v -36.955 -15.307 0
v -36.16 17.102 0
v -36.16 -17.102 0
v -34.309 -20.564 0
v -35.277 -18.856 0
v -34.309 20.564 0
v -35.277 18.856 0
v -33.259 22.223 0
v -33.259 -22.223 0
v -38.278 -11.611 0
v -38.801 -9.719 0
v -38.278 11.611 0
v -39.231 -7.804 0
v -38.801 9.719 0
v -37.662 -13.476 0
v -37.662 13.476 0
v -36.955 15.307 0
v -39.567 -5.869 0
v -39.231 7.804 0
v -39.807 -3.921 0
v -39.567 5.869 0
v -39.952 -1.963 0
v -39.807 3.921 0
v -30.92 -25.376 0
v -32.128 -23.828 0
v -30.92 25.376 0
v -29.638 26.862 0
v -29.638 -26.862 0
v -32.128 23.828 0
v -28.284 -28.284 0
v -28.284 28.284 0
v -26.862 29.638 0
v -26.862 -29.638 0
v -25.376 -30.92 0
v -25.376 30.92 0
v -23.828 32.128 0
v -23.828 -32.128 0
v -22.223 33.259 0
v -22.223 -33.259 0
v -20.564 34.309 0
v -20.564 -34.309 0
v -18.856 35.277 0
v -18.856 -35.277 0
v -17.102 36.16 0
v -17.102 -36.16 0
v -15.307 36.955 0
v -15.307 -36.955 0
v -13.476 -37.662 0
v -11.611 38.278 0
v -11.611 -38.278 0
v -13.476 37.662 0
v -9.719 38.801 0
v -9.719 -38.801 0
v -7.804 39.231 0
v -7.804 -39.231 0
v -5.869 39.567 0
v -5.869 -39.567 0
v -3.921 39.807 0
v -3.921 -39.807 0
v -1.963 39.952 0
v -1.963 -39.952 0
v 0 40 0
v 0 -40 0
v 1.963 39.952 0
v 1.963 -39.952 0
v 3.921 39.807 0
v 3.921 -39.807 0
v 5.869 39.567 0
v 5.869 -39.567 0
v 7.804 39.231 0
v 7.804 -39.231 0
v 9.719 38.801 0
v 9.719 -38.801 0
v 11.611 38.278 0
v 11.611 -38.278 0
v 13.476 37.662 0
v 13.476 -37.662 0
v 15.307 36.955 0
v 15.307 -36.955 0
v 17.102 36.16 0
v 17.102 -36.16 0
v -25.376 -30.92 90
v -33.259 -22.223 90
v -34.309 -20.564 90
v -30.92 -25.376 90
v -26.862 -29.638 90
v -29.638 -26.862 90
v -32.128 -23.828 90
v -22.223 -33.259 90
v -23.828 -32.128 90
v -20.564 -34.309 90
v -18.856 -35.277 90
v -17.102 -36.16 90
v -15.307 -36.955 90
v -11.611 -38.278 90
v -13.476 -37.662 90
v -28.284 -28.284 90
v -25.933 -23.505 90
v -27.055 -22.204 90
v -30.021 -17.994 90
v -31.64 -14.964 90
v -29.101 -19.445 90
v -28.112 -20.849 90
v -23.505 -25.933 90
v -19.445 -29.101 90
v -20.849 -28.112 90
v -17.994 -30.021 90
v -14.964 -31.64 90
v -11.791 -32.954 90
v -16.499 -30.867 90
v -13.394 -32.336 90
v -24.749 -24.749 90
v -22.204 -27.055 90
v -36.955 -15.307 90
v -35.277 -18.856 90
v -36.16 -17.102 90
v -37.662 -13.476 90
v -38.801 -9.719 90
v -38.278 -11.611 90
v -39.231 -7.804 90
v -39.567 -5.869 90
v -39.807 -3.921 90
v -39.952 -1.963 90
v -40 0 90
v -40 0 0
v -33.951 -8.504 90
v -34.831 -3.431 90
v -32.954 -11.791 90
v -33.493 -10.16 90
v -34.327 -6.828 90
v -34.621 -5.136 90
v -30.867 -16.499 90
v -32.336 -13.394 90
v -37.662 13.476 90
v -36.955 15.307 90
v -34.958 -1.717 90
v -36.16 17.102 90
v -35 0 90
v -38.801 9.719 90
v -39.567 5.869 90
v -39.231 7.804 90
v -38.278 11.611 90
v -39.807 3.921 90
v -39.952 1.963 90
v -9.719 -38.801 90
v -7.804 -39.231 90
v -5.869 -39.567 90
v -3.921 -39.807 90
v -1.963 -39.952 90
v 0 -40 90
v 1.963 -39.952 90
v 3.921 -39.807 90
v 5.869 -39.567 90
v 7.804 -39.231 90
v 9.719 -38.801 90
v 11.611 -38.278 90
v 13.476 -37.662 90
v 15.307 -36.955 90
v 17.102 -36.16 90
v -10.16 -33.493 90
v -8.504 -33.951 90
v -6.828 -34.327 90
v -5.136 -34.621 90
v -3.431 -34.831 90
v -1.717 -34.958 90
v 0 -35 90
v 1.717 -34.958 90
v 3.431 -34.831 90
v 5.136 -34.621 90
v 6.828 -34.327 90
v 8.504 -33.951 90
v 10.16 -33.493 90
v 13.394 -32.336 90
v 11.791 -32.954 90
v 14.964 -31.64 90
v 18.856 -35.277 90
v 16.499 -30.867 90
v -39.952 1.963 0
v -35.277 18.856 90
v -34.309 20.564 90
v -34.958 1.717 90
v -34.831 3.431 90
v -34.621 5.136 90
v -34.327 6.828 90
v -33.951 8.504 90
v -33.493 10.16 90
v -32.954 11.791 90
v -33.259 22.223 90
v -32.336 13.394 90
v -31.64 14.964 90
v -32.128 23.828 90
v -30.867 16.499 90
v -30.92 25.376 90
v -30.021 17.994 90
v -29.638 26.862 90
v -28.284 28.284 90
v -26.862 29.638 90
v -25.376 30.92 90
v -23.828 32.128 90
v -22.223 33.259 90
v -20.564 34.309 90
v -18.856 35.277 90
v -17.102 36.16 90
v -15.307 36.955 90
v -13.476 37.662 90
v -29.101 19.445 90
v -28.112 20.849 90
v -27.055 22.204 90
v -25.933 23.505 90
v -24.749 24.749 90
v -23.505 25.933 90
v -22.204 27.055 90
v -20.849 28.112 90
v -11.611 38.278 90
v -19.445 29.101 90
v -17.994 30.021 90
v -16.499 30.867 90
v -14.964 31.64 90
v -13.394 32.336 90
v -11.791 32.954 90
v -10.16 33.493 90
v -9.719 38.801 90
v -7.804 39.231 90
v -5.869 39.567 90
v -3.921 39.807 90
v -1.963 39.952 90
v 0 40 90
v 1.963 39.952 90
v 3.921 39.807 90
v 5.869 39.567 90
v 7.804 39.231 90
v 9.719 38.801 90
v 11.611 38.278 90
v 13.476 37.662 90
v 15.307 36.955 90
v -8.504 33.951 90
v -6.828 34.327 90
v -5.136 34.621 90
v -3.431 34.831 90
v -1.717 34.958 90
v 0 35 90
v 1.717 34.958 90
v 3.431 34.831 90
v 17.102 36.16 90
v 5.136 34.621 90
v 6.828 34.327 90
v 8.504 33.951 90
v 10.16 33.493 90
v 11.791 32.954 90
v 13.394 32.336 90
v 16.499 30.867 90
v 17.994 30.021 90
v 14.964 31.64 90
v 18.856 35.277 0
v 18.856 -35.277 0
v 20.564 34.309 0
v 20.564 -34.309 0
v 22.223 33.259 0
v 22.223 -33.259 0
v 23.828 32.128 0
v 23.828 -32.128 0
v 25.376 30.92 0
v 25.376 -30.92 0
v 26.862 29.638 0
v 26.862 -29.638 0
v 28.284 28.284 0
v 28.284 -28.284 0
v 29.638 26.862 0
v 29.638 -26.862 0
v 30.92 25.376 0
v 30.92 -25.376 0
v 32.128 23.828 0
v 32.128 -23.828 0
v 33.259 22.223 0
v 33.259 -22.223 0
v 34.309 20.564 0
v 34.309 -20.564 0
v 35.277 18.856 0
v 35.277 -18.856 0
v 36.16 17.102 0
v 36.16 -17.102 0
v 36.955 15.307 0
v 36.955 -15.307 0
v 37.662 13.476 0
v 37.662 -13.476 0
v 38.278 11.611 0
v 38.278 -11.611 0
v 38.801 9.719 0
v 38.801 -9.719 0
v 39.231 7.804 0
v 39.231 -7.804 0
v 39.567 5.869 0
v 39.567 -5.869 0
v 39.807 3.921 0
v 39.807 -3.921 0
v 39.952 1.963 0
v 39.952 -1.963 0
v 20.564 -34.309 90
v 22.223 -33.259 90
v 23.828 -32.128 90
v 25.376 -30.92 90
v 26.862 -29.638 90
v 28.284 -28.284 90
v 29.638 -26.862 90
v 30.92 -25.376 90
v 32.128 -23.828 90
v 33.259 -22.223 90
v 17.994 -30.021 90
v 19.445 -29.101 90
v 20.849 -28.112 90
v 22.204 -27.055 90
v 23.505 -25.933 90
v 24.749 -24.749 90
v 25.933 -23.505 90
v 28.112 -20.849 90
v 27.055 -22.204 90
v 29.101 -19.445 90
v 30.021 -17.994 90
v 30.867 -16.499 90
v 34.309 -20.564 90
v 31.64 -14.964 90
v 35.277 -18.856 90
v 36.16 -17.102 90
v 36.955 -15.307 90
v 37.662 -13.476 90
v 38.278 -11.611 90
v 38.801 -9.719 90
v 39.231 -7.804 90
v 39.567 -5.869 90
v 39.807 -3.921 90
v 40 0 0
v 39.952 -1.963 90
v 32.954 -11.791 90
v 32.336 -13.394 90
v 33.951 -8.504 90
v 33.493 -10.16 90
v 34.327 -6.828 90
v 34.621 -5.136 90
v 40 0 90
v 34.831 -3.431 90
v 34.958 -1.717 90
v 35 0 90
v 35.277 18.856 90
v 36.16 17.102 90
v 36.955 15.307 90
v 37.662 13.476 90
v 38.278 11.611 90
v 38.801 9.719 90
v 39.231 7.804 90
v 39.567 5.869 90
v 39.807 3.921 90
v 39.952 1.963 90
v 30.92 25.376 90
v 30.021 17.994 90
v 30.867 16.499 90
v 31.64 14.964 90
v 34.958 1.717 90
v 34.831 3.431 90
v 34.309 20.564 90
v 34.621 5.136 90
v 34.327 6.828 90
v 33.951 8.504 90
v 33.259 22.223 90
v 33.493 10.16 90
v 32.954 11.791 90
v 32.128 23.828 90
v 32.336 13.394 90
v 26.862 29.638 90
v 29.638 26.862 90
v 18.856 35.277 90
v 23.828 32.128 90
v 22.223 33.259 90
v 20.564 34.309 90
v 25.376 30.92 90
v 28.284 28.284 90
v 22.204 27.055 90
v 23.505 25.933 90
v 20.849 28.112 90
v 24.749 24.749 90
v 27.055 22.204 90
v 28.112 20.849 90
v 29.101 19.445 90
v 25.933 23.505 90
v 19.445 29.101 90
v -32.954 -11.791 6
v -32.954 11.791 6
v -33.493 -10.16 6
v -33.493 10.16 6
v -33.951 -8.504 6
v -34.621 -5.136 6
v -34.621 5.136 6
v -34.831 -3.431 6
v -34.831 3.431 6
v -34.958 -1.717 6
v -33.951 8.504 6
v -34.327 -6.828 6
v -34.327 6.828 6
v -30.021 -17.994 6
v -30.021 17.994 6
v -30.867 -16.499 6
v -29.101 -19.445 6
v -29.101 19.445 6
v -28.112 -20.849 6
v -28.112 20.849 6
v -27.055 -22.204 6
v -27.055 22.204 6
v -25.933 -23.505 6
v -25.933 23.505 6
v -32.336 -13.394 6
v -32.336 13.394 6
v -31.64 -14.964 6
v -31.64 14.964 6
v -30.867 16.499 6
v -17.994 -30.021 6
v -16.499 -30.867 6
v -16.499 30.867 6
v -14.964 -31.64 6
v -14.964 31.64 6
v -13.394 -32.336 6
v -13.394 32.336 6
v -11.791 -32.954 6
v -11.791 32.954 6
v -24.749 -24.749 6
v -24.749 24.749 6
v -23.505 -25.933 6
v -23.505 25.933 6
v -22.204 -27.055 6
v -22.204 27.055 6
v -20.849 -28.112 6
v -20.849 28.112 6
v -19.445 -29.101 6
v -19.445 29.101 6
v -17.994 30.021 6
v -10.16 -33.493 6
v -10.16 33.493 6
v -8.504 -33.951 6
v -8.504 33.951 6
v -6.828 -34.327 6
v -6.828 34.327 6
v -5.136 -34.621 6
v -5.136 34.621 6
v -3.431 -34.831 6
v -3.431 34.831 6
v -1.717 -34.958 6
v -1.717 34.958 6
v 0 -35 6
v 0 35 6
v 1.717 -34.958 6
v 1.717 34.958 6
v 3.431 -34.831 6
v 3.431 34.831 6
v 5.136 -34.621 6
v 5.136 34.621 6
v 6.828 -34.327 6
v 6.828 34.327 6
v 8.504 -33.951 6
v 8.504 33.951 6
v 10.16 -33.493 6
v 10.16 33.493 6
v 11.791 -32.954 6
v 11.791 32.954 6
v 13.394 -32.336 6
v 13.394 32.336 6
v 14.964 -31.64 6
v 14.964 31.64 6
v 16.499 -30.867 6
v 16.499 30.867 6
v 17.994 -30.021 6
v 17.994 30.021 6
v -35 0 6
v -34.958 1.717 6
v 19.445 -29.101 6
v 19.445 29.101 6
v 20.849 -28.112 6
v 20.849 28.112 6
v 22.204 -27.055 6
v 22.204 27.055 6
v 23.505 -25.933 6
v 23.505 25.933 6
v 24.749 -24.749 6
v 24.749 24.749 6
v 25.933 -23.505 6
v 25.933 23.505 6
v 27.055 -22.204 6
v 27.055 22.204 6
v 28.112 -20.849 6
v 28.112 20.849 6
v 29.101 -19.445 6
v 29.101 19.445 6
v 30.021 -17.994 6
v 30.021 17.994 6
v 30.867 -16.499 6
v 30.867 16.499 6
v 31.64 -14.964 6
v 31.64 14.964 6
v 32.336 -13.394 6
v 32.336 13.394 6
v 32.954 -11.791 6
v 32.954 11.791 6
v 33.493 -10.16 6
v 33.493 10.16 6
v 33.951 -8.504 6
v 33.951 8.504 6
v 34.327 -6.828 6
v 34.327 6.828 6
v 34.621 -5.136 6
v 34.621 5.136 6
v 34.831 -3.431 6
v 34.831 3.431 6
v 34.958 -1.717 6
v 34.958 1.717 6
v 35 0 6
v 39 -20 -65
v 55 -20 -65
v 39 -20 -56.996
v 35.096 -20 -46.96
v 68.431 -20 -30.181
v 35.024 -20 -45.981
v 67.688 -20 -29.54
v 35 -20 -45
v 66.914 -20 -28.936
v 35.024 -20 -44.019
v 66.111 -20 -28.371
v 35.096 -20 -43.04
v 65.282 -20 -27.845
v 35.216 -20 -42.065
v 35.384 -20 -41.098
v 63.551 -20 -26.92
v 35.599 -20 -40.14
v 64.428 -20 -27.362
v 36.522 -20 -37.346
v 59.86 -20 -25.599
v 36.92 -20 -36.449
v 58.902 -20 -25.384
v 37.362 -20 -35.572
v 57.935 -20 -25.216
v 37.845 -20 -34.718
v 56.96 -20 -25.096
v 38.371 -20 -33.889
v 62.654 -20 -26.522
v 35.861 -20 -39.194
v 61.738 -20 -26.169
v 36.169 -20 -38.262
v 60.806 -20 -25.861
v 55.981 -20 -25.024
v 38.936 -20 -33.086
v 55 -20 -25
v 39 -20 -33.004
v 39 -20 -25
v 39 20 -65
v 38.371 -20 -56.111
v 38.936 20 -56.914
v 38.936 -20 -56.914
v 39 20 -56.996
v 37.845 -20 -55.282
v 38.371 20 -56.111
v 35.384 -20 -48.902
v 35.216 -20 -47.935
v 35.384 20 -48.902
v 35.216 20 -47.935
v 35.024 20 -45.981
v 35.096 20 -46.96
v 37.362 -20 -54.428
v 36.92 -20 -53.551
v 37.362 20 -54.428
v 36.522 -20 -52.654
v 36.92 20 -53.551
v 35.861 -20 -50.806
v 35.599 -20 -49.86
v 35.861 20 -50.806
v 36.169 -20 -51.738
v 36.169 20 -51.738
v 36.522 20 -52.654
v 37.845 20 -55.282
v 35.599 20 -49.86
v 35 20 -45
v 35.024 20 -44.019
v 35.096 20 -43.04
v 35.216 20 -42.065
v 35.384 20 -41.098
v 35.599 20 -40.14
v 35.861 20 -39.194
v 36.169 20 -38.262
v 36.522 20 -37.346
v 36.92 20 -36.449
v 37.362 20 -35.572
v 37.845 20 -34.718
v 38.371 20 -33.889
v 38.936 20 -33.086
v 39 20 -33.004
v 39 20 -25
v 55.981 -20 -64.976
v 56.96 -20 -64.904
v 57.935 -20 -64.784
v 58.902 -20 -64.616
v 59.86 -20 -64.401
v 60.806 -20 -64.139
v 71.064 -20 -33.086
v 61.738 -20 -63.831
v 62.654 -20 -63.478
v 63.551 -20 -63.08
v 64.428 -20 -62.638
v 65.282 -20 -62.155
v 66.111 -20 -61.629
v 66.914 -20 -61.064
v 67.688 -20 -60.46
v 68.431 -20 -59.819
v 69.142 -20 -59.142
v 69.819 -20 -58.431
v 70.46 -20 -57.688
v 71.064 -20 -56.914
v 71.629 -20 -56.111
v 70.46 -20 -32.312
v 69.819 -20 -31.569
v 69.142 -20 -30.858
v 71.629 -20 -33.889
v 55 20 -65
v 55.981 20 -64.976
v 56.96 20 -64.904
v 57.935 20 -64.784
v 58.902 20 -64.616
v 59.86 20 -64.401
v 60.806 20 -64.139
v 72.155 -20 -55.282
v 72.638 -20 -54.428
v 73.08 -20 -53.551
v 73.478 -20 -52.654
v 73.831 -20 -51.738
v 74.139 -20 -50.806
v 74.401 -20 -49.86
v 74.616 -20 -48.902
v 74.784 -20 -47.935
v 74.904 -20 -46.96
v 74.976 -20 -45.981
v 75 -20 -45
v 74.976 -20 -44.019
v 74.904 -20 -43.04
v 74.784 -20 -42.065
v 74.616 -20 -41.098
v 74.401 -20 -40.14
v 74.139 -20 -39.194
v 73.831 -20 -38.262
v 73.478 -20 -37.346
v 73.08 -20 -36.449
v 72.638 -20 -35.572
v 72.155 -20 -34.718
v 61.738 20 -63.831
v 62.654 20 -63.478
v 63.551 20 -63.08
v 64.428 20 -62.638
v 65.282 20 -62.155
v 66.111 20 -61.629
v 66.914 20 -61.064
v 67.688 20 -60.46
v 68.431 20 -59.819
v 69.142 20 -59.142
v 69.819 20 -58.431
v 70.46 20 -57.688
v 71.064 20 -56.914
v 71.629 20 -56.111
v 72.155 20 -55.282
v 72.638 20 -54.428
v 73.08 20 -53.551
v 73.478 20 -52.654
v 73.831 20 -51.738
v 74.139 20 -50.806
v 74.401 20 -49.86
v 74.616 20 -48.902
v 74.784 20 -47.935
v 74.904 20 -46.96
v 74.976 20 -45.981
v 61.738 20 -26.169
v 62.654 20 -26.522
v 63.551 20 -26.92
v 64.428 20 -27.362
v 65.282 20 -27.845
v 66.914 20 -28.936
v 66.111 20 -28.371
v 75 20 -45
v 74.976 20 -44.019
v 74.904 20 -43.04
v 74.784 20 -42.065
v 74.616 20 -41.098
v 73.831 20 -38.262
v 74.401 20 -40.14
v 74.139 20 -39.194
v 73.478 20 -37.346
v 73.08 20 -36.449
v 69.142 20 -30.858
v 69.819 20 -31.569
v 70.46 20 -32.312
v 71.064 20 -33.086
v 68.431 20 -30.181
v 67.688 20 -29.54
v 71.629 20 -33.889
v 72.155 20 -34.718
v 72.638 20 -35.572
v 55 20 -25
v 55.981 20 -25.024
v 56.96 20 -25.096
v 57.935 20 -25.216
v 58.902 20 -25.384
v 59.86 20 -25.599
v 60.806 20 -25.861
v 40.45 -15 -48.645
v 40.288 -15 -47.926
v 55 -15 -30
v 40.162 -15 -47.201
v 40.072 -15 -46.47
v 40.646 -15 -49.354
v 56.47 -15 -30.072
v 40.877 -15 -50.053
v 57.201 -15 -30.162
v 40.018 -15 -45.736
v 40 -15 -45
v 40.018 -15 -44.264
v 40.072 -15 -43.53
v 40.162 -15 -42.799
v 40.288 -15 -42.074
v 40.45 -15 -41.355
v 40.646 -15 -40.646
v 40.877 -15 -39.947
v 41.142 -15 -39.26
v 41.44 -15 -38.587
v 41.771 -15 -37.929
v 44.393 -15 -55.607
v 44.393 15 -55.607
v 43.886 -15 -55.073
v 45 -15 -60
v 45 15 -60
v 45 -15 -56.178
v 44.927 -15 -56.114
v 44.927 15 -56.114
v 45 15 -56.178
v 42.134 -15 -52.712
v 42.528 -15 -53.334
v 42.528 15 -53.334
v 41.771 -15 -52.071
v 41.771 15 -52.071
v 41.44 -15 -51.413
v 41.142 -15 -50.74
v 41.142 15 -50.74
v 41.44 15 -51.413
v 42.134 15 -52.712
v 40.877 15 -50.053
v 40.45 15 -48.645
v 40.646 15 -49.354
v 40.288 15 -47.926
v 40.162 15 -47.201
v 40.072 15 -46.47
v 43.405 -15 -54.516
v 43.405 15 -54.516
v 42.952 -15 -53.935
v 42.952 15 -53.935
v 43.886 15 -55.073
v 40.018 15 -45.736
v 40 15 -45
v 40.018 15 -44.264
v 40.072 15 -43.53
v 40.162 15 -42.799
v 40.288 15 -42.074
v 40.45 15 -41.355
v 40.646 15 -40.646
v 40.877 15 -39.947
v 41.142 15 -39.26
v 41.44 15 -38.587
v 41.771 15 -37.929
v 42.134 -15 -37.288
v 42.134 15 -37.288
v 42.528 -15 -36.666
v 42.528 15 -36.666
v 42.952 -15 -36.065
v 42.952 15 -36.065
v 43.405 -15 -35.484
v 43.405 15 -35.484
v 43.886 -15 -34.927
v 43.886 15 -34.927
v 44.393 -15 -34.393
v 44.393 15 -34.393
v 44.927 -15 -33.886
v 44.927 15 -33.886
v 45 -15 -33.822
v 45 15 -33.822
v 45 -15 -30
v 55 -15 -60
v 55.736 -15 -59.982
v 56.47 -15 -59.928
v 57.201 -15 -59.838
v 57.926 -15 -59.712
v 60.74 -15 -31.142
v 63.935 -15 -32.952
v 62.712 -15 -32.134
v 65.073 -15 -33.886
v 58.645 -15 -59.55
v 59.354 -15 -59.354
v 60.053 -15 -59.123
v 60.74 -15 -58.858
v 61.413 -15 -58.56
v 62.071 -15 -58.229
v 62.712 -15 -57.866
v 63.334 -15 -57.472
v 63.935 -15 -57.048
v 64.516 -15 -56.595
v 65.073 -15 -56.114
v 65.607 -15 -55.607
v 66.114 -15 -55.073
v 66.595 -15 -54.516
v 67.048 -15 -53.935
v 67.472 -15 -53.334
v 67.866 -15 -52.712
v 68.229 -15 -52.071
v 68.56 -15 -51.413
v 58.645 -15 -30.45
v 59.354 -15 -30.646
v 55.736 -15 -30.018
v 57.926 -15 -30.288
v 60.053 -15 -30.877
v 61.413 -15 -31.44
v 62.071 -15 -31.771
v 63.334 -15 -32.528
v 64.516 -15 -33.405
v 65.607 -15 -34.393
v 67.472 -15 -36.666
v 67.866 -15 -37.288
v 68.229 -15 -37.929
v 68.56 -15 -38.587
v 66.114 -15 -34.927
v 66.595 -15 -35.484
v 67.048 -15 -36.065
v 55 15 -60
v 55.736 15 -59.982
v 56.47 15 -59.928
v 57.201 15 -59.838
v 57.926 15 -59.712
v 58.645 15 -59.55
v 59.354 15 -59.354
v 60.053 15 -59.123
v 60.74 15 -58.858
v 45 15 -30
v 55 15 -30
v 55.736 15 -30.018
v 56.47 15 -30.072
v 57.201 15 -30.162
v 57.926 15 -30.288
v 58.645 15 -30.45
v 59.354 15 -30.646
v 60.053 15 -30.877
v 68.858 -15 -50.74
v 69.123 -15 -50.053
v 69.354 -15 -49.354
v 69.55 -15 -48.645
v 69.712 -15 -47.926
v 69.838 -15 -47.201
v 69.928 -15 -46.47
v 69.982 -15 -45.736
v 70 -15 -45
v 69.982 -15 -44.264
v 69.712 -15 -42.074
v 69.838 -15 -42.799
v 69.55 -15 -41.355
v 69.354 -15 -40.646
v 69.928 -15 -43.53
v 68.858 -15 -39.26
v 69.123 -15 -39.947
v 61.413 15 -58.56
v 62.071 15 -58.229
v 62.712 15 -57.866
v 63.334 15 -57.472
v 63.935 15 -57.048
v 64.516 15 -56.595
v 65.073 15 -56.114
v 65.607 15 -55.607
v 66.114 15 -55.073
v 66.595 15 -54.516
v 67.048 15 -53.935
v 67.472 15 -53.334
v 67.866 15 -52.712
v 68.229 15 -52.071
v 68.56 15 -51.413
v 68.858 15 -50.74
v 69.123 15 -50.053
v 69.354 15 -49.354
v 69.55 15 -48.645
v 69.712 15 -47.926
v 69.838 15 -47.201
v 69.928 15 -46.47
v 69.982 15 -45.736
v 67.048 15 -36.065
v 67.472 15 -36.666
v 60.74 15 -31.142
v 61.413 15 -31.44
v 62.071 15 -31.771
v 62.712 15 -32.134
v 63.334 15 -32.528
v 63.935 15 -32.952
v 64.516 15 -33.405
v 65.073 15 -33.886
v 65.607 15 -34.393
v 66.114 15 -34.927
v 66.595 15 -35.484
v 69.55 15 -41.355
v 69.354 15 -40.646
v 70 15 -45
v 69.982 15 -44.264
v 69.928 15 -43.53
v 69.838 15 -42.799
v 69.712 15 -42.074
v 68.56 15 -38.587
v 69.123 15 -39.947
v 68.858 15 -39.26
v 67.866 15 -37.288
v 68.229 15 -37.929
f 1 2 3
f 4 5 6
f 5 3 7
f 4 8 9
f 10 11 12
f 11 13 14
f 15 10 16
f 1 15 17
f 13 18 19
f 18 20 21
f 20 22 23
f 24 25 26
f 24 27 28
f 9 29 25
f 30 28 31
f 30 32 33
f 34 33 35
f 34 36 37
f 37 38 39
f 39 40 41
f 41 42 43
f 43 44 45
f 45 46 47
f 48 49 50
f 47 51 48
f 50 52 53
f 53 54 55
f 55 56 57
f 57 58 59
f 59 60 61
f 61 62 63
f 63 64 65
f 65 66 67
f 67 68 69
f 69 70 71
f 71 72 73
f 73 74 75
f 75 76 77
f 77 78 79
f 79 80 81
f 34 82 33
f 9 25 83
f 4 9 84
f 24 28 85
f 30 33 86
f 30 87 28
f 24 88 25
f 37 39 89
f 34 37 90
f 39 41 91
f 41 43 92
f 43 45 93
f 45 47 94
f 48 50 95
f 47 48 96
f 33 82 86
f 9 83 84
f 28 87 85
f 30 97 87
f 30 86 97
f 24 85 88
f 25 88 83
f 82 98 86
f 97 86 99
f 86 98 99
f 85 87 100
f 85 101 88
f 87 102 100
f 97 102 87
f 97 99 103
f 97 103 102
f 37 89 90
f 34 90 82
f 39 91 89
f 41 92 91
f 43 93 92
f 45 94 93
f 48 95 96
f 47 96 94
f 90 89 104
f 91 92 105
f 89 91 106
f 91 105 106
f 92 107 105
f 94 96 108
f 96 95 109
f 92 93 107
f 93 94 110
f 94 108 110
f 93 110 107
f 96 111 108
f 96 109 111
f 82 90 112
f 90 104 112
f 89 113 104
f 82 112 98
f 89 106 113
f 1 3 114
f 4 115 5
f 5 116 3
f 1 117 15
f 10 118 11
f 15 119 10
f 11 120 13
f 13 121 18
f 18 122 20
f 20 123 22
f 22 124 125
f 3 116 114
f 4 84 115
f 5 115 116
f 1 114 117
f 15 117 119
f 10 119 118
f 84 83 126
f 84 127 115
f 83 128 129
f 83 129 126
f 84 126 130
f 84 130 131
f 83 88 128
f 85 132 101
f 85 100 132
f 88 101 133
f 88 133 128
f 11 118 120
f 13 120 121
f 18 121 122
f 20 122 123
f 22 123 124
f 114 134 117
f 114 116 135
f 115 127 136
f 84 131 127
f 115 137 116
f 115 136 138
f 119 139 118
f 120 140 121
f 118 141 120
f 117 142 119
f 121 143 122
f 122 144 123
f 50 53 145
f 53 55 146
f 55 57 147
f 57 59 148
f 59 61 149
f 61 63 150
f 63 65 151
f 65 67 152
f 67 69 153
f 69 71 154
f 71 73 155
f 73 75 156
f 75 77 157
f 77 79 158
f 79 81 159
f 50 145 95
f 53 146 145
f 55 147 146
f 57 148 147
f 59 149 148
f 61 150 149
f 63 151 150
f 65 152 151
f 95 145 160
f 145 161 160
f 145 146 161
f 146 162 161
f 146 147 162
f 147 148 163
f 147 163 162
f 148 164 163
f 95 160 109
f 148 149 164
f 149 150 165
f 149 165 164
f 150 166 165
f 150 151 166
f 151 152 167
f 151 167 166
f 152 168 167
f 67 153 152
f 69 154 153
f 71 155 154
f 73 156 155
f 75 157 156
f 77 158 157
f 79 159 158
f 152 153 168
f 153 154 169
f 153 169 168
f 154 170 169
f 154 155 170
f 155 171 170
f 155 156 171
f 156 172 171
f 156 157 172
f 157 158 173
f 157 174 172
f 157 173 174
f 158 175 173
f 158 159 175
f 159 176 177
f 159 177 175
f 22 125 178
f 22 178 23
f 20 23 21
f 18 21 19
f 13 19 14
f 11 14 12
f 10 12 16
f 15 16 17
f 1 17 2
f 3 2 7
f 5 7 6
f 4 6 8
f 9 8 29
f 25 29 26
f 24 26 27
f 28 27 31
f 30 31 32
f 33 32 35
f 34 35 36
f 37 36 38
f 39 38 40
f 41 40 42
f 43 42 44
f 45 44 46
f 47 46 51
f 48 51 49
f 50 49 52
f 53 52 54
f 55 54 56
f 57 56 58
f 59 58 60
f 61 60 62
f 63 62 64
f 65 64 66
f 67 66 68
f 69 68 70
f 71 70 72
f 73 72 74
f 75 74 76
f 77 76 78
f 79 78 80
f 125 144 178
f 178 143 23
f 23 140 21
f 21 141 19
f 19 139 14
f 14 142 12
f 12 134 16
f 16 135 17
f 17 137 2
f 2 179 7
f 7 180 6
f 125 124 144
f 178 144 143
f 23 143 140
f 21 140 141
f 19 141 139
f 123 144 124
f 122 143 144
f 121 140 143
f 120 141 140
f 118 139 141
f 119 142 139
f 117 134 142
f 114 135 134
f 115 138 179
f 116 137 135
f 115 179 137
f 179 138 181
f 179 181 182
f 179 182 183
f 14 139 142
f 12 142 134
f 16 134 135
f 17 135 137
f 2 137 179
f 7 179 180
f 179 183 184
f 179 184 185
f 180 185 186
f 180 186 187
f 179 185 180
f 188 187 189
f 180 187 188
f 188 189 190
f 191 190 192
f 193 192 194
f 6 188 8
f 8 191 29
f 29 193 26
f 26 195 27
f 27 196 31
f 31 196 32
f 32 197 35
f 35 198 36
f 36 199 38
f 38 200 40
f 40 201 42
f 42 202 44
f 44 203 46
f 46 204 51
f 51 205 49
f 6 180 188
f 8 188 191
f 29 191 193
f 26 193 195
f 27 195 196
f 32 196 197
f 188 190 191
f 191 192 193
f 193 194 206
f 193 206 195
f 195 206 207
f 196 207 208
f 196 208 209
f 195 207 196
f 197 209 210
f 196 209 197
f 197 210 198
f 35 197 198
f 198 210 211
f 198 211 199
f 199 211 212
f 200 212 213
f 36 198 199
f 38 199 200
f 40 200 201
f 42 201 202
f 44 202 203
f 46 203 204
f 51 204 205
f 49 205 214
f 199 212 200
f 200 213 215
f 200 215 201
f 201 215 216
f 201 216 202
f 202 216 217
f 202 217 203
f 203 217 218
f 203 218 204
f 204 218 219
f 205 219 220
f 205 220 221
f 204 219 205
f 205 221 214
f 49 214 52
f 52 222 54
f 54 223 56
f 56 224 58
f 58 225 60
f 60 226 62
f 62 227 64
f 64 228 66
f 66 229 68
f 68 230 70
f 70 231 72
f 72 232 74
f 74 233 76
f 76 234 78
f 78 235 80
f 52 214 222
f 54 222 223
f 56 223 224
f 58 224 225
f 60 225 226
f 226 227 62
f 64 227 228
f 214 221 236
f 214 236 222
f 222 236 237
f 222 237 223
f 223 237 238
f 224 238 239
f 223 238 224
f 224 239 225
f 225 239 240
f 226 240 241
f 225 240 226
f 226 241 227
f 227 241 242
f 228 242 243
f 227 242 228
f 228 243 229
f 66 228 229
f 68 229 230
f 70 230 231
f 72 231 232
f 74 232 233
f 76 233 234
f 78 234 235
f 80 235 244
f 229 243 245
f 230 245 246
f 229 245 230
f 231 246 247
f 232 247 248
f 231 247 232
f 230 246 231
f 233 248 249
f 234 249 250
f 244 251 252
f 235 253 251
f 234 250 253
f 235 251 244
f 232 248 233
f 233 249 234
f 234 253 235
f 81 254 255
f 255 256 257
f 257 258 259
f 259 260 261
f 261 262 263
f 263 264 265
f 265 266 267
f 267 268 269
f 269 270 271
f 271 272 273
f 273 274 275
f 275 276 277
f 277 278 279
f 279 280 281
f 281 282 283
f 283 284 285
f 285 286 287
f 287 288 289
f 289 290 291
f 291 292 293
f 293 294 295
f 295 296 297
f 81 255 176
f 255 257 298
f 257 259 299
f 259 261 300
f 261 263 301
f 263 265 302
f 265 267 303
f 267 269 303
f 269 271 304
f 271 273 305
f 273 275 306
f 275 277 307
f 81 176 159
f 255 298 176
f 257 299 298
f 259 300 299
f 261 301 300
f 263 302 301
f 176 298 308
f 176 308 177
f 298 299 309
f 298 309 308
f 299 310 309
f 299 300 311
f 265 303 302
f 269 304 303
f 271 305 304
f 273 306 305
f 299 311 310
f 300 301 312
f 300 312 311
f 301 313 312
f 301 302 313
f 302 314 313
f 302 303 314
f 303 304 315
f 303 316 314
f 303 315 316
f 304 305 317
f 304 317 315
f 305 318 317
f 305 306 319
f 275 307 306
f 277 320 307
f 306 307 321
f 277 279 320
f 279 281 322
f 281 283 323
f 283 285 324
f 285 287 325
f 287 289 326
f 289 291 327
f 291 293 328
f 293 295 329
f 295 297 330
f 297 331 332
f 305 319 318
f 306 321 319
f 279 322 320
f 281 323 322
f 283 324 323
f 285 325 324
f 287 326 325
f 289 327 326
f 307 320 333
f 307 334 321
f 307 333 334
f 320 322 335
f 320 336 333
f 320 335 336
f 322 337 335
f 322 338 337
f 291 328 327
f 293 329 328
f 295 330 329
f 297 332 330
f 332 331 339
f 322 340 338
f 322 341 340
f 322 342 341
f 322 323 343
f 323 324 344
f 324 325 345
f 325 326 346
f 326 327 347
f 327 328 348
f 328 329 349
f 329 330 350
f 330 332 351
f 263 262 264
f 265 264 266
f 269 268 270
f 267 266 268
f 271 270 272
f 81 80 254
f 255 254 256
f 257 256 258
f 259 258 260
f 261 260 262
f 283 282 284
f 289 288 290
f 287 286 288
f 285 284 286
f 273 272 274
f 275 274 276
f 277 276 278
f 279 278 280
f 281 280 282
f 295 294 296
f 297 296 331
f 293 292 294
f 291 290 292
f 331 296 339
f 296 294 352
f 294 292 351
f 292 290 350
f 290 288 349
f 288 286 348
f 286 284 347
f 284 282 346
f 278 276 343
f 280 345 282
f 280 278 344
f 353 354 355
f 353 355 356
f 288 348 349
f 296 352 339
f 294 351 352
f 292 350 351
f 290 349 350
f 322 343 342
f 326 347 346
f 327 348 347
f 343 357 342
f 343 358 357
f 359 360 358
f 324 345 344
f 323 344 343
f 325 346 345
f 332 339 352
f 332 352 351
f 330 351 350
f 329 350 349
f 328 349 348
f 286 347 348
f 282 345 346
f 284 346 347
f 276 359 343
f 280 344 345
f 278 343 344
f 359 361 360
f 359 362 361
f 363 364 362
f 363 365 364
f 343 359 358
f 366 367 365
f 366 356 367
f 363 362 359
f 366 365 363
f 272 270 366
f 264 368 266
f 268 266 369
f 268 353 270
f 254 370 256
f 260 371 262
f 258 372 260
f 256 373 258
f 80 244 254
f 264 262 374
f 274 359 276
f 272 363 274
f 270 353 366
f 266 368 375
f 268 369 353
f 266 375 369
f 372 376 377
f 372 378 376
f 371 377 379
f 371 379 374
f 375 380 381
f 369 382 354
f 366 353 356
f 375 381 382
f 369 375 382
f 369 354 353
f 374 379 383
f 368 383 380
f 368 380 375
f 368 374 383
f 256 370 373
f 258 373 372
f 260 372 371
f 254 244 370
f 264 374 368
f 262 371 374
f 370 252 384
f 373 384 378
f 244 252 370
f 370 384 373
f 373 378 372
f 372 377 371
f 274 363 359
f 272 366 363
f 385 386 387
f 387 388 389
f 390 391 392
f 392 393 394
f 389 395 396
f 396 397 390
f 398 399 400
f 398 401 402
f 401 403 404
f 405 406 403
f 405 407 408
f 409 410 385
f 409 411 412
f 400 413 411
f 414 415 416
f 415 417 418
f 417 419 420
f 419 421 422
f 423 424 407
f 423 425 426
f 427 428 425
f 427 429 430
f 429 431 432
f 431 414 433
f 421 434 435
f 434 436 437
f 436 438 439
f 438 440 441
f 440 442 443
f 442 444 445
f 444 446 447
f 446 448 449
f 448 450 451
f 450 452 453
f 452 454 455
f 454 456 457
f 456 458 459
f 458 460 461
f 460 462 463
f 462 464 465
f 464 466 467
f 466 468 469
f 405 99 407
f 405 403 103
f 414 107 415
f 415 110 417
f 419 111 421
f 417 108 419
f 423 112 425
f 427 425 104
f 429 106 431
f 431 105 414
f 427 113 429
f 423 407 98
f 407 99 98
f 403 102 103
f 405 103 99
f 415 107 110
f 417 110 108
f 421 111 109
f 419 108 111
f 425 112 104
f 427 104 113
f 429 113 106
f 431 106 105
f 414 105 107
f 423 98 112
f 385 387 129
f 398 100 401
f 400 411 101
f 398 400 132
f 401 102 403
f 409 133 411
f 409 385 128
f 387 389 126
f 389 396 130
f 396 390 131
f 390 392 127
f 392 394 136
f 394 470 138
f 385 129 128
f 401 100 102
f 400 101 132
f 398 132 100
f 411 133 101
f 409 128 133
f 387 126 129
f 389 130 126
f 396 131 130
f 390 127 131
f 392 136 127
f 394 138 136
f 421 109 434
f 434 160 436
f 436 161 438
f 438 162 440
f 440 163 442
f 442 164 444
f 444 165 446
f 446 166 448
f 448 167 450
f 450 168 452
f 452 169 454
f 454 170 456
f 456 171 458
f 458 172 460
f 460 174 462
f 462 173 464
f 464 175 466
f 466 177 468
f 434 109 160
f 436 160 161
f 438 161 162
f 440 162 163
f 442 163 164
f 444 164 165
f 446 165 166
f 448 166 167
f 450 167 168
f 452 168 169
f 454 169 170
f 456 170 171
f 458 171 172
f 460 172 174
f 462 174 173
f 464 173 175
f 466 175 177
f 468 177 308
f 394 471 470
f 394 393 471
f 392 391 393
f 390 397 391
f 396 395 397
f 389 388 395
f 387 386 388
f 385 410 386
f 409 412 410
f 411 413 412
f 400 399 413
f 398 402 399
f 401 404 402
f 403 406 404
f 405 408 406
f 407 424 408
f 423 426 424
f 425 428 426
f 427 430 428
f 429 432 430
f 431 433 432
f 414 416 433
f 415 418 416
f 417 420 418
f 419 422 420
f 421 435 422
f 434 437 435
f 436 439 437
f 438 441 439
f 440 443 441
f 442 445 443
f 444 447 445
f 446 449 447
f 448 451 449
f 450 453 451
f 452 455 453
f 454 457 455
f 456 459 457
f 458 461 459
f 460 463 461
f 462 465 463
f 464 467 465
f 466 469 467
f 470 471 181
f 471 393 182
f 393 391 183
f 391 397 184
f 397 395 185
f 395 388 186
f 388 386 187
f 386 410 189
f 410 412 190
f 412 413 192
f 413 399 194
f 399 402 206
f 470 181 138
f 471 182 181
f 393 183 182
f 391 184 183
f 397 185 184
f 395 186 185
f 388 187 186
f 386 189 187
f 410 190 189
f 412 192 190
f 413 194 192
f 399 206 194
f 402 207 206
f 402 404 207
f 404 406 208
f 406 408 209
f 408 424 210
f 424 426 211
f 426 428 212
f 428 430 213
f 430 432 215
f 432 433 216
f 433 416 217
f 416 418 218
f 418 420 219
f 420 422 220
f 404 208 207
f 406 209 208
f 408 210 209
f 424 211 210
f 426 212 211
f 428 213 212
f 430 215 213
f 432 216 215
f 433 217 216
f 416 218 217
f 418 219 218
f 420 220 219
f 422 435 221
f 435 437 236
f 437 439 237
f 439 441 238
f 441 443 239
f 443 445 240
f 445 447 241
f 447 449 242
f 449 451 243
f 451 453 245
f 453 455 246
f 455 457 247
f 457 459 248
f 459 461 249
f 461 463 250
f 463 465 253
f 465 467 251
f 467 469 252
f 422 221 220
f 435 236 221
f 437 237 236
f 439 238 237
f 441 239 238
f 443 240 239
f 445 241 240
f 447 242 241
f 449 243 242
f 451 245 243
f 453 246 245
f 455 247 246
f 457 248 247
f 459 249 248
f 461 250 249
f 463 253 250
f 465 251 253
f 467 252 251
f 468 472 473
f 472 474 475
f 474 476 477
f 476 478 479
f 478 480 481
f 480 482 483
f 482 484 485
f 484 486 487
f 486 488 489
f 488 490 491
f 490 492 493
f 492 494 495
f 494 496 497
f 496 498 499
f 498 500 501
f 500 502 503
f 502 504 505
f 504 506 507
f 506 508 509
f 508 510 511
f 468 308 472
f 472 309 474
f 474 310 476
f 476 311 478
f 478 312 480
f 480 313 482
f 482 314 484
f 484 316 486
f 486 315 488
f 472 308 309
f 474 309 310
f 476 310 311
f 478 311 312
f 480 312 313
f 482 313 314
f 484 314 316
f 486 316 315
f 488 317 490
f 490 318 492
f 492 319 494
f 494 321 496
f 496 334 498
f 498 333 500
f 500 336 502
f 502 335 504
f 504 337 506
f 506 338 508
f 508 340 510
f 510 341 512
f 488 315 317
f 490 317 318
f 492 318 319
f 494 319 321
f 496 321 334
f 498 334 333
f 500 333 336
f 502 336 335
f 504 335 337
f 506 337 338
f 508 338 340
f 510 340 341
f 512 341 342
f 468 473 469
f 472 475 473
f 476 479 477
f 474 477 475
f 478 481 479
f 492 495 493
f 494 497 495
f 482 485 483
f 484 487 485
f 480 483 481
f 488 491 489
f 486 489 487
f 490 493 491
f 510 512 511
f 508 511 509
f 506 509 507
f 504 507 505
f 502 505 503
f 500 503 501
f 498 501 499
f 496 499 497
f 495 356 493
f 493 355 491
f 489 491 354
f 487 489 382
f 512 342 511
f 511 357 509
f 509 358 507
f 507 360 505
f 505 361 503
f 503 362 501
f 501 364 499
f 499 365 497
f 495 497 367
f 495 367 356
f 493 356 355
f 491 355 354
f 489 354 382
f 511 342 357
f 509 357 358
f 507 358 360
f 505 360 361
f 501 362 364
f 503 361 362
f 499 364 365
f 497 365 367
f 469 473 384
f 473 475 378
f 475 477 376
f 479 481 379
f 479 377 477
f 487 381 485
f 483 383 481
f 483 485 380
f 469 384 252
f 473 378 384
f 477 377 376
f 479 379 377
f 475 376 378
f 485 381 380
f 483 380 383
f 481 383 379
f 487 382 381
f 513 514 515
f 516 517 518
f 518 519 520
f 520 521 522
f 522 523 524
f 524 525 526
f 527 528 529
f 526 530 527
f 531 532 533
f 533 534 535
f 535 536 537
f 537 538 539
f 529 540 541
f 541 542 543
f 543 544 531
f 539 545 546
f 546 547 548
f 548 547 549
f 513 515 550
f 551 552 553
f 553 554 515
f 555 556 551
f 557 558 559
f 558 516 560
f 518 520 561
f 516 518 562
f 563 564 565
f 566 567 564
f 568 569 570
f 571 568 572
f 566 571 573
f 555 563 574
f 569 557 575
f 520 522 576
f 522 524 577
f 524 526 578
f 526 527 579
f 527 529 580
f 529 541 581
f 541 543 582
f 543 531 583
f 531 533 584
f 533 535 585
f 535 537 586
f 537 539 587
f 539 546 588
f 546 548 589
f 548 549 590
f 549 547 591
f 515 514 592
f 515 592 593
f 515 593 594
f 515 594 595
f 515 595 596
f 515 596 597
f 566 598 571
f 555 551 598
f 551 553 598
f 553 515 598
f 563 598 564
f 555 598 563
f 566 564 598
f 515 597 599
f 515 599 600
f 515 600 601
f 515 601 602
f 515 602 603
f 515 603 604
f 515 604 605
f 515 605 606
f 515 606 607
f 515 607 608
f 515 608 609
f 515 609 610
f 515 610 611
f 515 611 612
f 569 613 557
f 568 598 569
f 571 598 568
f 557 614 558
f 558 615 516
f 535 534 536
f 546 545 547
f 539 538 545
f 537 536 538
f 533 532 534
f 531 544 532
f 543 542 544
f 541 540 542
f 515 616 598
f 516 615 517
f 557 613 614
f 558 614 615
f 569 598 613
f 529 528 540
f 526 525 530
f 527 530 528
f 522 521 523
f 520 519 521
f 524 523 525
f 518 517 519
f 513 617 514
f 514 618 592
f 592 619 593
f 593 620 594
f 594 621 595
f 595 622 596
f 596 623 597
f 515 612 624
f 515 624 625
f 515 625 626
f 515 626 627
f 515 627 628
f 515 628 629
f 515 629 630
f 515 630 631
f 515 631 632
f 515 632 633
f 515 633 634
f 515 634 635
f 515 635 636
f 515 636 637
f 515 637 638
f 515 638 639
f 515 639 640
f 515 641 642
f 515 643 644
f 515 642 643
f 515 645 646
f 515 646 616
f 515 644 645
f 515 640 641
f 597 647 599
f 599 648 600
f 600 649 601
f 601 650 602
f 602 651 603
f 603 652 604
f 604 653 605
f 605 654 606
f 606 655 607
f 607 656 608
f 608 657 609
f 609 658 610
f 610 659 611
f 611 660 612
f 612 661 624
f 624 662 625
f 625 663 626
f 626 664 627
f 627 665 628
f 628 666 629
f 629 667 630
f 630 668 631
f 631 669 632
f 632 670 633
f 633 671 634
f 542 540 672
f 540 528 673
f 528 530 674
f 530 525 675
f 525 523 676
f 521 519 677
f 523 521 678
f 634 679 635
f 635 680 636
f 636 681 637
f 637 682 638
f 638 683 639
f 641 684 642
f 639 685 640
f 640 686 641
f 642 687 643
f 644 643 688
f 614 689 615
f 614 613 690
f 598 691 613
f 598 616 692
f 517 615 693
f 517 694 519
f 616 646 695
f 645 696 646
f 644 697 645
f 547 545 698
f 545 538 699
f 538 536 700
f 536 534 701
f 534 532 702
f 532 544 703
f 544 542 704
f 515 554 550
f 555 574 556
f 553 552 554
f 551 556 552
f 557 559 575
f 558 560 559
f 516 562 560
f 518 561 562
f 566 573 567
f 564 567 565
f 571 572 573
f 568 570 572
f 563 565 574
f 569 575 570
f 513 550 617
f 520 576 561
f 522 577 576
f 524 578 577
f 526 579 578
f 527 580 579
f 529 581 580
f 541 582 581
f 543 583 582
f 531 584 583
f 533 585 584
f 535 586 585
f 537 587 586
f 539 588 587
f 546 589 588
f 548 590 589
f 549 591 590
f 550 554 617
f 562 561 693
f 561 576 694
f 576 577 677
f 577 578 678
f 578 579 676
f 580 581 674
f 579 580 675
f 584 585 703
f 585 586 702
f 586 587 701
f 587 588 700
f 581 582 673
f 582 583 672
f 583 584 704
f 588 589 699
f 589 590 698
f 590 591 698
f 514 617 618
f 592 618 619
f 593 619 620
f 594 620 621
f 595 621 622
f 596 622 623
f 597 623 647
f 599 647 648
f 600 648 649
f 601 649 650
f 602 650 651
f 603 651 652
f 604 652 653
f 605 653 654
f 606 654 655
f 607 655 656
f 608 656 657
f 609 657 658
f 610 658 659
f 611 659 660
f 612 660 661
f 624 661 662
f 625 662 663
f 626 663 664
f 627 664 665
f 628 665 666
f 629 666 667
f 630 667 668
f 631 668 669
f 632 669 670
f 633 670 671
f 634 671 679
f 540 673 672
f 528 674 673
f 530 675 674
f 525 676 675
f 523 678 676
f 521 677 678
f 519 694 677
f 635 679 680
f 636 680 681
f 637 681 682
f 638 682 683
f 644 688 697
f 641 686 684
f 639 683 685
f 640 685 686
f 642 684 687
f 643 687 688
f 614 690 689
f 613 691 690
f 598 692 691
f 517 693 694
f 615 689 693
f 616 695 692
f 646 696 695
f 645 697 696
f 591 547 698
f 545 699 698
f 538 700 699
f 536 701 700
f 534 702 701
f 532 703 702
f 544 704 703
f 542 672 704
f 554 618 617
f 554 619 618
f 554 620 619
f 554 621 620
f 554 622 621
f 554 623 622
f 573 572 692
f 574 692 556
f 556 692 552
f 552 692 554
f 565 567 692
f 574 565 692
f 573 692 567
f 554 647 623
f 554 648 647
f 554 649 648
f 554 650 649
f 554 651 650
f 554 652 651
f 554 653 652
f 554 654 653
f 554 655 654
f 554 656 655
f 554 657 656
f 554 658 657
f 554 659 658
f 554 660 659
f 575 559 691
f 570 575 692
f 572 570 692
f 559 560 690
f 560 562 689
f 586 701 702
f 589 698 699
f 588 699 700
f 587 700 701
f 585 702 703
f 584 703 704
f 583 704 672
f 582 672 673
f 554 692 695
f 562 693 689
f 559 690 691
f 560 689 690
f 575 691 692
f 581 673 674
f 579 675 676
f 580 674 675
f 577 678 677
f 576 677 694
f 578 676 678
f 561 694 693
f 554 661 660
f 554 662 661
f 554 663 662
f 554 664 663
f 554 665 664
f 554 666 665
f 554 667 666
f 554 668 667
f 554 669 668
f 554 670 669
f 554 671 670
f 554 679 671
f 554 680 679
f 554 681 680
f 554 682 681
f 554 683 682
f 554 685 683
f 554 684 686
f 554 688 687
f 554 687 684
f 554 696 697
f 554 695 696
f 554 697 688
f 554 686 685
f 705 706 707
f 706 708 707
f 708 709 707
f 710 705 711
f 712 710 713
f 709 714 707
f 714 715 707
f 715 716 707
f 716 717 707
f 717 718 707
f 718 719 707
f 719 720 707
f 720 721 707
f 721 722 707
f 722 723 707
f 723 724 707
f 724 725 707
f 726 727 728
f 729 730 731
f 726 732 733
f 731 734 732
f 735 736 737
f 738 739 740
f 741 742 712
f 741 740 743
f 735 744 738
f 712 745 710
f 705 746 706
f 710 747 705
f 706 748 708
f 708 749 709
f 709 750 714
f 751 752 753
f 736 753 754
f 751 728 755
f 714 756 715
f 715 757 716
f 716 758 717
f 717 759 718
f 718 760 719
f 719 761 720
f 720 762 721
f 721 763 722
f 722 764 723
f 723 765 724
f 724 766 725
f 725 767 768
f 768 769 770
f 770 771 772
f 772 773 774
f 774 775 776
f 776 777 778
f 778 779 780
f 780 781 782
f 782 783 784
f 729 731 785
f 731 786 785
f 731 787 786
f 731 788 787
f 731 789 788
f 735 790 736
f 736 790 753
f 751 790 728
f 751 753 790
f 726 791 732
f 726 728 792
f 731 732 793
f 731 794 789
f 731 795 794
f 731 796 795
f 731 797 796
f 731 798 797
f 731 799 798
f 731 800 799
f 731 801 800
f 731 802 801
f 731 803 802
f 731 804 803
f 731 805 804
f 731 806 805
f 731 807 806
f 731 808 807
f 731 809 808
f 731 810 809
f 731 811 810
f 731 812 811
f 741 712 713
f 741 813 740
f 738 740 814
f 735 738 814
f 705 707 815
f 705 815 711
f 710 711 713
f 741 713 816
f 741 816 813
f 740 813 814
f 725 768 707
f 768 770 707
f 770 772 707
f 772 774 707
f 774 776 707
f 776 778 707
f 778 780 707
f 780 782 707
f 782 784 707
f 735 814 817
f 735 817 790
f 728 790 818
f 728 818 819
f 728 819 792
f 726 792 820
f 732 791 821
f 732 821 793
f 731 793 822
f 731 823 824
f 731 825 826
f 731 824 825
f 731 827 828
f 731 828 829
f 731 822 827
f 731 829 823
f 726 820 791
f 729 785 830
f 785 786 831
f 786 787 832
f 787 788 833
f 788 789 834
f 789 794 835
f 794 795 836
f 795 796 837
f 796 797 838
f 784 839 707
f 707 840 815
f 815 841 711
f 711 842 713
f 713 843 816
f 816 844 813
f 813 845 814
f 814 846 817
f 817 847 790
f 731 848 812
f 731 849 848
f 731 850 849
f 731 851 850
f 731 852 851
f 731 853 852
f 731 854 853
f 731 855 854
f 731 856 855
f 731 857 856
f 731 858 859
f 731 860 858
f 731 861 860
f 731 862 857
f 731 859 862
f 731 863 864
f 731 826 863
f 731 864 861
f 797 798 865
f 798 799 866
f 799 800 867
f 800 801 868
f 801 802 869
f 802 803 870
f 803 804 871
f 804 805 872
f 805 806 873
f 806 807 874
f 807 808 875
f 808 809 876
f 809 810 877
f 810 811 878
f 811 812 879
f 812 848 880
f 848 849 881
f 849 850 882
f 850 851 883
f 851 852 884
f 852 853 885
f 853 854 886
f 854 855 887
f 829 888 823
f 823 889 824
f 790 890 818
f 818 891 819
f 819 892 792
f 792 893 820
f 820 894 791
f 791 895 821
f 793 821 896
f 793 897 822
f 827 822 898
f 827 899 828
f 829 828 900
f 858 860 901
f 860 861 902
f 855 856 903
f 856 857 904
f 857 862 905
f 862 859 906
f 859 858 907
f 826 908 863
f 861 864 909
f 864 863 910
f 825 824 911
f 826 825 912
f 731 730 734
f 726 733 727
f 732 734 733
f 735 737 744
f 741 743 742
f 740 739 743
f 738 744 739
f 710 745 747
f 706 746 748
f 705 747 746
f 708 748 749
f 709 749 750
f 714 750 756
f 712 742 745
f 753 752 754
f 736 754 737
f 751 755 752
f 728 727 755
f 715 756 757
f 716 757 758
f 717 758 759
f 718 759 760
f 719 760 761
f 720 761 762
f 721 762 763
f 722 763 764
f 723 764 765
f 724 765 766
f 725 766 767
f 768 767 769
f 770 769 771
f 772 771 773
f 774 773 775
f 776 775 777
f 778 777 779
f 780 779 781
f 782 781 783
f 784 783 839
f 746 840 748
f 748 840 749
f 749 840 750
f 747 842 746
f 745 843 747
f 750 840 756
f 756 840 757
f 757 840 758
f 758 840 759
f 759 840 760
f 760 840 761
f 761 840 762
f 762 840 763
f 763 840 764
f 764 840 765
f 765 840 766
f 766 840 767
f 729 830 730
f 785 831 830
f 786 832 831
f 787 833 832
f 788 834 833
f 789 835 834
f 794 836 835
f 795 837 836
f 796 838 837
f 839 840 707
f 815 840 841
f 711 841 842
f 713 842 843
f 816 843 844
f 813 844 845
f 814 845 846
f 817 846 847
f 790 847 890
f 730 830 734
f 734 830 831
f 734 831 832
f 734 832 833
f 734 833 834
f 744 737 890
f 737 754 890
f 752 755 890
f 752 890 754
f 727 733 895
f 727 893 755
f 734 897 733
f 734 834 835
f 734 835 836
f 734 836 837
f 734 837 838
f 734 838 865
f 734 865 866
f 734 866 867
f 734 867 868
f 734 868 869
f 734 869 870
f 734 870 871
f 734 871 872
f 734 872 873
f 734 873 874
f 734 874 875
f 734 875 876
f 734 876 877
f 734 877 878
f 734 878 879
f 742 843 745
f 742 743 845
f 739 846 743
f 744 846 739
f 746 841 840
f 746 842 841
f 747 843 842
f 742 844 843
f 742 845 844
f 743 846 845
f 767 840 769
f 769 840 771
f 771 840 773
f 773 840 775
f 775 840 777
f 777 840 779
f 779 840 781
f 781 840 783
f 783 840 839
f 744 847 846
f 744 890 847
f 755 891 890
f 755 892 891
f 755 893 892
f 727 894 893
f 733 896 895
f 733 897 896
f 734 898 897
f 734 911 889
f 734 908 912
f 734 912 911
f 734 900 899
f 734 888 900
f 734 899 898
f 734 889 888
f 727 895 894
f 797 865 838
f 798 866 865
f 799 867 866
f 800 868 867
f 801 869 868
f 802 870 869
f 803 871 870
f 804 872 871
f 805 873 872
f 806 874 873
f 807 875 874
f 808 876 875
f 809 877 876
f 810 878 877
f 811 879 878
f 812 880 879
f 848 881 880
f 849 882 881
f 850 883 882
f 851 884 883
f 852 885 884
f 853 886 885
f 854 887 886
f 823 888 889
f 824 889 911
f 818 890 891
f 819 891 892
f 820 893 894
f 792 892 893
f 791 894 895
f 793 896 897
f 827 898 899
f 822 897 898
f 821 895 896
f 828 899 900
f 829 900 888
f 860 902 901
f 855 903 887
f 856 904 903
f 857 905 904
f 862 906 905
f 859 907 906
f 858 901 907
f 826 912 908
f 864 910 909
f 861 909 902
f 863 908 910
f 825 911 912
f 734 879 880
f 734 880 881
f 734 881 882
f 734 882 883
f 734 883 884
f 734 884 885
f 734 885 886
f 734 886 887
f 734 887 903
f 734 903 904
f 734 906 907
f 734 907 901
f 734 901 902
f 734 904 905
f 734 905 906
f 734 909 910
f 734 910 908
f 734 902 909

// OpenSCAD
$fn = 128;

// Mug dimensions
outer_d = 80;
inner_d = 70;
mug_h   = 90;
bottom_t = 6;

// Handle opening dimensions
handle_open_w = 25;   // radial width of finger opening
handle_open_h = 30;   // vertical height of finger opening

// Handle thickness around opening
handle_wall = 5;

// Derived
outer_r = outer_d / 2;
inner_r = inner_d / 2;

// Handle placement and size
handle_center_z = mug_h / 2;
handle_outer_h = handle_open_h + 2 * handle_wall;
handle_r = handle_outer_h / 2;                  // radius for rounded top/bottom in YZ profile
handle_straight_h = handle_open_h;              // straight section height in YZ profile

// Radial extents in X
handle_inner_x = outer_r - 1.0;                 // slight overlap into mug for manifold union
handle_outer_x = outer_r + handle_open_w + 2 * handle_wall;

// 2D D-shape in XZ plane, then extruded along Y
module d_shape_2d(x0, x1, zc, open_h) {
    r = open_h / 2;
    union() {
        translate([x0, zc - r]) square([x1 - x0 - r, open_h], center = false);
        translate([x1 - r, zc]) circle(r = r);
    }
}

module mug_body() {
    difference() {
        cylinder(h = mug_h, r = outer_r);
        translate([0, 0, bottom_t])
            cylinder(h = mug_h - bottom_t + 0.01, r = inner_r);
    }
}

module handle() {
    difference() {
        // Outer D-shape
        translate([0, -handle_r, 0])
            rotate([-90, 0, 0])
                linear_extrude(height = 2 * handle_r)
                    d_shape_2d(handle_inner_x, handle_outer_x, handle_center_z, handle_outer_h);

        // Inner opening D-shape
        translate([0, -handle_open_h/2, 0])
            rotate([-90, 0, 0])
                linear_extrude(height = handle_open_h)
                    d_shape_2d(outer_r + handle_wall, outer_r + handle_wall + handle_open_w, handle_center_z, handle_open_h);
    }
}

union() {
    mug_body();
    handle();
}
